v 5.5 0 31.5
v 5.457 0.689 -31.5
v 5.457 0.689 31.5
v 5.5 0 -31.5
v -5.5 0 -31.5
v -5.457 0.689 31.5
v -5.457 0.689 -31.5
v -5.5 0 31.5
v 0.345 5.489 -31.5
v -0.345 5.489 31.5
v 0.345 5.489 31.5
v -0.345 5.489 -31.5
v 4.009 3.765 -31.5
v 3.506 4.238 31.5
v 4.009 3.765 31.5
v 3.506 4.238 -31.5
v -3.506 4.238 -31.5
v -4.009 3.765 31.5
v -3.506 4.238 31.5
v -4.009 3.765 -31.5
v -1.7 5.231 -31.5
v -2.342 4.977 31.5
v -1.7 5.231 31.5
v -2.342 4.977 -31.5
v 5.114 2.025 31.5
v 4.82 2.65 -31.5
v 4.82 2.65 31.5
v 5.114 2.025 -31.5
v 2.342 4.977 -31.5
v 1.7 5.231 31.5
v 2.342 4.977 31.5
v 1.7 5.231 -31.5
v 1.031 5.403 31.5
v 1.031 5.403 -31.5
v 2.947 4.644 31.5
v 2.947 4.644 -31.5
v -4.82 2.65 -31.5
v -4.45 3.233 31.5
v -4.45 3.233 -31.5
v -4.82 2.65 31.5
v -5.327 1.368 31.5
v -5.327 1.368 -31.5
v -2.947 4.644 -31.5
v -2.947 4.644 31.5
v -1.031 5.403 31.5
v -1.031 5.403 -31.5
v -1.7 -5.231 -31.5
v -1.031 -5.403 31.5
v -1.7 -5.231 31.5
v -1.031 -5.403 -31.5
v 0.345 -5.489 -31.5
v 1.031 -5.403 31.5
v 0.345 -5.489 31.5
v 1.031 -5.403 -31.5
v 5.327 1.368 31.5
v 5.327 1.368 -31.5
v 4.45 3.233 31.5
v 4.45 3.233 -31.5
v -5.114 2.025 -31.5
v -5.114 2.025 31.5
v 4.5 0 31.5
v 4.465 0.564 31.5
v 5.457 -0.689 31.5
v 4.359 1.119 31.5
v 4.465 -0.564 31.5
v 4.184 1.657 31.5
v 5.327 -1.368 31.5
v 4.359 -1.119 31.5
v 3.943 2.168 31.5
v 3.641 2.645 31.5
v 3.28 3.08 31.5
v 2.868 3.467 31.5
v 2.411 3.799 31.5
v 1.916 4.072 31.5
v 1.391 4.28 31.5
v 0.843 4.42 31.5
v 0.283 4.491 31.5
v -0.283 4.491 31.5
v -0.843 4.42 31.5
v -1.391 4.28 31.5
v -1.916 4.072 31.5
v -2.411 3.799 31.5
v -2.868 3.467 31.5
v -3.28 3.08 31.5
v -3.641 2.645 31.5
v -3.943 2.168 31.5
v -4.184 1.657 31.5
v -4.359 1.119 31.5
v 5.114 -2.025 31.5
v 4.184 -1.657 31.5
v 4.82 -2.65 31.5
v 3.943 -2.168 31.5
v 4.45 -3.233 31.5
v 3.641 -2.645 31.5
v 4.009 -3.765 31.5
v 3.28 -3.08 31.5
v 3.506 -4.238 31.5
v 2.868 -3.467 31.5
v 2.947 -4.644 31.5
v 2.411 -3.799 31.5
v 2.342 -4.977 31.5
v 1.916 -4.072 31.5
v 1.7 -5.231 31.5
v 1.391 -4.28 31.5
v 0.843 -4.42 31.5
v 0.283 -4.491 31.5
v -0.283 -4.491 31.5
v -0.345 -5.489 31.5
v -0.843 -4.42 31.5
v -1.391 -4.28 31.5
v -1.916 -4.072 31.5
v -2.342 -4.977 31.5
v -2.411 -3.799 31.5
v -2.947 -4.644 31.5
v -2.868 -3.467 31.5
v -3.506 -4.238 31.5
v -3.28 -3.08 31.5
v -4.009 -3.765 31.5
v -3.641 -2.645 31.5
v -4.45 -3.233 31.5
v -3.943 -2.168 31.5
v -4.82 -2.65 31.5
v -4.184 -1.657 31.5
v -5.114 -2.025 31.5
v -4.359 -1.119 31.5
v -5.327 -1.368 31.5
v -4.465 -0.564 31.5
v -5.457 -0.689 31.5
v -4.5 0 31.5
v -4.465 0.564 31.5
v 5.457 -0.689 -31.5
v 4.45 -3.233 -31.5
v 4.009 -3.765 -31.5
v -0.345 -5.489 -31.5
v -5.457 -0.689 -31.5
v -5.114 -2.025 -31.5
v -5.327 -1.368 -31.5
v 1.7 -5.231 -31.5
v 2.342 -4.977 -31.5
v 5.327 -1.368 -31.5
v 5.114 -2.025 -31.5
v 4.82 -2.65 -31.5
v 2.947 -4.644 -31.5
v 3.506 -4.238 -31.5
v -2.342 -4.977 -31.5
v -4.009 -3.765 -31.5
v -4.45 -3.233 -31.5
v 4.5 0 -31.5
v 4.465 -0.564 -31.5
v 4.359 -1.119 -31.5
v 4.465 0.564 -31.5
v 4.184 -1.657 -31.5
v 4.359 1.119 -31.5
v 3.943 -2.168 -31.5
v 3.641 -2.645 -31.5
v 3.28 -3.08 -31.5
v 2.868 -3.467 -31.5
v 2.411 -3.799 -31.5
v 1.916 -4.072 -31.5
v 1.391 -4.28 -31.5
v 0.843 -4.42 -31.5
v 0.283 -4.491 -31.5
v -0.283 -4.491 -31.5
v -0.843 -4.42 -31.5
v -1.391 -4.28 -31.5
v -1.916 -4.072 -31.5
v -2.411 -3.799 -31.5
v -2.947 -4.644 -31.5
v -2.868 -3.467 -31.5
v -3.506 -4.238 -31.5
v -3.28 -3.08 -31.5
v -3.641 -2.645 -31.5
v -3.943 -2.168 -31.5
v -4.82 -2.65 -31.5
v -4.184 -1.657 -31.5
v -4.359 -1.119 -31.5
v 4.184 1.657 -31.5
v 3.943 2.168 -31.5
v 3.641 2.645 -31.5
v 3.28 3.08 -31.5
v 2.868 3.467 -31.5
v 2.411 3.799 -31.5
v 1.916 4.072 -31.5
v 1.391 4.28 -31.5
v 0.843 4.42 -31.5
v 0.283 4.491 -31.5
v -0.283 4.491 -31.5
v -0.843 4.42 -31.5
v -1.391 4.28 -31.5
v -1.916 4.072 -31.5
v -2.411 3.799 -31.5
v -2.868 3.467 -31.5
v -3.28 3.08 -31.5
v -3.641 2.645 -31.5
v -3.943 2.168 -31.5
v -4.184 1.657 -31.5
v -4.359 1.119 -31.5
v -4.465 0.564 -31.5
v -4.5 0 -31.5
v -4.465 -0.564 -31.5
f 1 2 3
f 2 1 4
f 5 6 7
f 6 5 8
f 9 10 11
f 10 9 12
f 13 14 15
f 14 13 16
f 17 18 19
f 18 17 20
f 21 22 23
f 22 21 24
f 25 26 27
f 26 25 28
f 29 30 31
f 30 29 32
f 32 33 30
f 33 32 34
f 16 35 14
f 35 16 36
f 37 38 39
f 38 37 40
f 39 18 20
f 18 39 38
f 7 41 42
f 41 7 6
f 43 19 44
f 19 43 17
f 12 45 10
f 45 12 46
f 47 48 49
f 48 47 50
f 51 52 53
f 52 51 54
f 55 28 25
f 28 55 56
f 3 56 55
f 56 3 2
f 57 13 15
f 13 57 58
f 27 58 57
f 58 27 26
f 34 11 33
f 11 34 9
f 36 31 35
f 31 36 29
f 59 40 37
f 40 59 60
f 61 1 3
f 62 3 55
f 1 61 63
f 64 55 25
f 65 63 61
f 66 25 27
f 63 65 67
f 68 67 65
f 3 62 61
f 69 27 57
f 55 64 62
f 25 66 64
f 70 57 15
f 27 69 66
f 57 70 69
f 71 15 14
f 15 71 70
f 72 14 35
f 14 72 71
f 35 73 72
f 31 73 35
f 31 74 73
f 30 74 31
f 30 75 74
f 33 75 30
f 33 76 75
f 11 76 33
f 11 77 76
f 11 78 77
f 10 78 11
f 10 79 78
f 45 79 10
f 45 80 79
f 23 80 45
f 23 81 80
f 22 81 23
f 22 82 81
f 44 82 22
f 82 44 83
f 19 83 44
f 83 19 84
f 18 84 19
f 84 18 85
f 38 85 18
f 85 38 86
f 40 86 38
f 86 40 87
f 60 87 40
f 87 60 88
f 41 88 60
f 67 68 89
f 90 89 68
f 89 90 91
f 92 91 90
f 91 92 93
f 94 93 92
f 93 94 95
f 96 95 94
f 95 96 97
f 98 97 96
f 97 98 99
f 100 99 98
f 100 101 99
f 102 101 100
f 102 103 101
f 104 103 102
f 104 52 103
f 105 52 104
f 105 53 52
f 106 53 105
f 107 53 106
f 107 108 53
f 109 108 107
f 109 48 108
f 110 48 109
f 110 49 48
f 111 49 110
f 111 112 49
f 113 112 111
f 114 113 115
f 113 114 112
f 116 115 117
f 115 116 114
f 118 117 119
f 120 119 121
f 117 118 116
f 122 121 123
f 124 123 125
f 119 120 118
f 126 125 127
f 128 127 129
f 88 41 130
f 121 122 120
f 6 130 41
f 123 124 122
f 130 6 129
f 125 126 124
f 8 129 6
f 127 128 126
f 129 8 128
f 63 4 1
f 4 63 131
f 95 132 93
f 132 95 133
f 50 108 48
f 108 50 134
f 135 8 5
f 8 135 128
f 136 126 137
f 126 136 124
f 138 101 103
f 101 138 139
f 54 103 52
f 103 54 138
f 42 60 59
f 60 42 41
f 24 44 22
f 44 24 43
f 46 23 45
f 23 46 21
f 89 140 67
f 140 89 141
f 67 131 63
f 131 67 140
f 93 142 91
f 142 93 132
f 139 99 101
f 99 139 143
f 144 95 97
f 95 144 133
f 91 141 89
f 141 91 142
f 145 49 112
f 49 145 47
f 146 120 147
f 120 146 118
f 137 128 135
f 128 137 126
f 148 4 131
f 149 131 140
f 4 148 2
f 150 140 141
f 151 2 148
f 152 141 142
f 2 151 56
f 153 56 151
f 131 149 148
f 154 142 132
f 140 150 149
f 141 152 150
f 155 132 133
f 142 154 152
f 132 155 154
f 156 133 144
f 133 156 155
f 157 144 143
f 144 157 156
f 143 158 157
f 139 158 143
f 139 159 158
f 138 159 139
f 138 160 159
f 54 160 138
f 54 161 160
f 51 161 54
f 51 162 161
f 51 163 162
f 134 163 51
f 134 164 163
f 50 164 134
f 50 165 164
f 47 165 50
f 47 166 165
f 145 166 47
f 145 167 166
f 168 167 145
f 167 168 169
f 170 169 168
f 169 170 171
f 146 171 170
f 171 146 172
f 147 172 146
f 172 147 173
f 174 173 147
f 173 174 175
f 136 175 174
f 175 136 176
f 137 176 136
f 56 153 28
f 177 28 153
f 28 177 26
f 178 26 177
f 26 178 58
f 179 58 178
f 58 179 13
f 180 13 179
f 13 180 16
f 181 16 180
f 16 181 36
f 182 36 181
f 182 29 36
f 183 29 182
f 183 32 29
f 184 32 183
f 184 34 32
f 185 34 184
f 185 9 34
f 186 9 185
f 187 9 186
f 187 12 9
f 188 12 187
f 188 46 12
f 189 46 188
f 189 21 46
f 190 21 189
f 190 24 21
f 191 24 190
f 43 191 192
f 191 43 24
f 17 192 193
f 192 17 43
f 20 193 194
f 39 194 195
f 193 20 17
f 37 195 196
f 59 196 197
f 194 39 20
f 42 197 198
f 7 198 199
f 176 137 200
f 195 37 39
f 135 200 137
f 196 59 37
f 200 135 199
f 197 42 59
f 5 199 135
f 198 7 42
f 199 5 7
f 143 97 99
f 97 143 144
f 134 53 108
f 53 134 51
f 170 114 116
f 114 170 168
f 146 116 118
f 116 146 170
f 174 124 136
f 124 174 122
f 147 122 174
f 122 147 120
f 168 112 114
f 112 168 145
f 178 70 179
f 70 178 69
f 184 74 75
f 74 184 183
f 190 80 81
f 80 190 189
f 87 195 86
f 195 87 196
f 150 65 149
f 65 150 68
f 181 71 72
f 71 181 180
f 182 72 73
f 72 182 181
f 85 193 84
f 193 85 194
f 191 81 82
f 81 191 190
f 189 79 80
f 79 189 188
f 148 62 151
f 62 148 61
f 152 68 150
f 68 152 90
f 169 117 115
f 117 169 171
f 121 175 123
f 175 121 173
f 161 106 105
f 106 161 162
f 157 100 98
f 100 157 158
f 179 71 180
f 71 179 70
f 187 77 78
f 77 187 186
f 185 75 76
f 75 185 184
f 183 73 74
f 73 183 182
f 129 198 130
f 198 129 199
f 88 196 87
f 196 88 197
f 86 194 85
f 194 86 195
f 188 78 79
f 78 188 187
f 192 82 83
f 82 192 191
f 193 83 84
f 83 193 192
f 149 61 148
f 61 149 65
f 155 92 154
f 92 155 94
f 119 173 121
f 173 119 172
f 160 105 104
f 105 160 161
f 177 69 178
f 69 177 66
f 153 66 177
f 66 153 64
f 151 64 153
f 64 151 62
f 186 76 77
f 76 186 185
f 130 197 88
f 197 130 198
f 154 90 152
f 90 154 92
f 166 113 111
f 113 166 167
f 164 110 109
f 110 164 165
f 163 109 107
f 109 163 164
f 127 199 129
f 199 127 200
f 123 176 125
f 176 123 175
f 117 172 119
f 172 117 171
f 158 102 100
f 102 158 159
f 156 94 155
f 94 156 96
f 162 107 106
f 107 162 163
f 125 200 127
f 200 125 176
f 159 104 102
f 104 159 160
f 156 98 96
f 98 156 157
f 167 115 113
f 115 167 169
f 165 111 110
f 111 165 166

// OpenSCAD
$fn = 50;


difference() {
	union() {
		translate(v = [0, 0, -31.5000000000]) {
			cylinder(h = 63, r = 5.5000000000);
		}
	}
	union() {
		translate(v = [0, 0, -100.0000000000]) {
			cylinder(h = 200, r = 4.5000000000);
		}
	}
}
